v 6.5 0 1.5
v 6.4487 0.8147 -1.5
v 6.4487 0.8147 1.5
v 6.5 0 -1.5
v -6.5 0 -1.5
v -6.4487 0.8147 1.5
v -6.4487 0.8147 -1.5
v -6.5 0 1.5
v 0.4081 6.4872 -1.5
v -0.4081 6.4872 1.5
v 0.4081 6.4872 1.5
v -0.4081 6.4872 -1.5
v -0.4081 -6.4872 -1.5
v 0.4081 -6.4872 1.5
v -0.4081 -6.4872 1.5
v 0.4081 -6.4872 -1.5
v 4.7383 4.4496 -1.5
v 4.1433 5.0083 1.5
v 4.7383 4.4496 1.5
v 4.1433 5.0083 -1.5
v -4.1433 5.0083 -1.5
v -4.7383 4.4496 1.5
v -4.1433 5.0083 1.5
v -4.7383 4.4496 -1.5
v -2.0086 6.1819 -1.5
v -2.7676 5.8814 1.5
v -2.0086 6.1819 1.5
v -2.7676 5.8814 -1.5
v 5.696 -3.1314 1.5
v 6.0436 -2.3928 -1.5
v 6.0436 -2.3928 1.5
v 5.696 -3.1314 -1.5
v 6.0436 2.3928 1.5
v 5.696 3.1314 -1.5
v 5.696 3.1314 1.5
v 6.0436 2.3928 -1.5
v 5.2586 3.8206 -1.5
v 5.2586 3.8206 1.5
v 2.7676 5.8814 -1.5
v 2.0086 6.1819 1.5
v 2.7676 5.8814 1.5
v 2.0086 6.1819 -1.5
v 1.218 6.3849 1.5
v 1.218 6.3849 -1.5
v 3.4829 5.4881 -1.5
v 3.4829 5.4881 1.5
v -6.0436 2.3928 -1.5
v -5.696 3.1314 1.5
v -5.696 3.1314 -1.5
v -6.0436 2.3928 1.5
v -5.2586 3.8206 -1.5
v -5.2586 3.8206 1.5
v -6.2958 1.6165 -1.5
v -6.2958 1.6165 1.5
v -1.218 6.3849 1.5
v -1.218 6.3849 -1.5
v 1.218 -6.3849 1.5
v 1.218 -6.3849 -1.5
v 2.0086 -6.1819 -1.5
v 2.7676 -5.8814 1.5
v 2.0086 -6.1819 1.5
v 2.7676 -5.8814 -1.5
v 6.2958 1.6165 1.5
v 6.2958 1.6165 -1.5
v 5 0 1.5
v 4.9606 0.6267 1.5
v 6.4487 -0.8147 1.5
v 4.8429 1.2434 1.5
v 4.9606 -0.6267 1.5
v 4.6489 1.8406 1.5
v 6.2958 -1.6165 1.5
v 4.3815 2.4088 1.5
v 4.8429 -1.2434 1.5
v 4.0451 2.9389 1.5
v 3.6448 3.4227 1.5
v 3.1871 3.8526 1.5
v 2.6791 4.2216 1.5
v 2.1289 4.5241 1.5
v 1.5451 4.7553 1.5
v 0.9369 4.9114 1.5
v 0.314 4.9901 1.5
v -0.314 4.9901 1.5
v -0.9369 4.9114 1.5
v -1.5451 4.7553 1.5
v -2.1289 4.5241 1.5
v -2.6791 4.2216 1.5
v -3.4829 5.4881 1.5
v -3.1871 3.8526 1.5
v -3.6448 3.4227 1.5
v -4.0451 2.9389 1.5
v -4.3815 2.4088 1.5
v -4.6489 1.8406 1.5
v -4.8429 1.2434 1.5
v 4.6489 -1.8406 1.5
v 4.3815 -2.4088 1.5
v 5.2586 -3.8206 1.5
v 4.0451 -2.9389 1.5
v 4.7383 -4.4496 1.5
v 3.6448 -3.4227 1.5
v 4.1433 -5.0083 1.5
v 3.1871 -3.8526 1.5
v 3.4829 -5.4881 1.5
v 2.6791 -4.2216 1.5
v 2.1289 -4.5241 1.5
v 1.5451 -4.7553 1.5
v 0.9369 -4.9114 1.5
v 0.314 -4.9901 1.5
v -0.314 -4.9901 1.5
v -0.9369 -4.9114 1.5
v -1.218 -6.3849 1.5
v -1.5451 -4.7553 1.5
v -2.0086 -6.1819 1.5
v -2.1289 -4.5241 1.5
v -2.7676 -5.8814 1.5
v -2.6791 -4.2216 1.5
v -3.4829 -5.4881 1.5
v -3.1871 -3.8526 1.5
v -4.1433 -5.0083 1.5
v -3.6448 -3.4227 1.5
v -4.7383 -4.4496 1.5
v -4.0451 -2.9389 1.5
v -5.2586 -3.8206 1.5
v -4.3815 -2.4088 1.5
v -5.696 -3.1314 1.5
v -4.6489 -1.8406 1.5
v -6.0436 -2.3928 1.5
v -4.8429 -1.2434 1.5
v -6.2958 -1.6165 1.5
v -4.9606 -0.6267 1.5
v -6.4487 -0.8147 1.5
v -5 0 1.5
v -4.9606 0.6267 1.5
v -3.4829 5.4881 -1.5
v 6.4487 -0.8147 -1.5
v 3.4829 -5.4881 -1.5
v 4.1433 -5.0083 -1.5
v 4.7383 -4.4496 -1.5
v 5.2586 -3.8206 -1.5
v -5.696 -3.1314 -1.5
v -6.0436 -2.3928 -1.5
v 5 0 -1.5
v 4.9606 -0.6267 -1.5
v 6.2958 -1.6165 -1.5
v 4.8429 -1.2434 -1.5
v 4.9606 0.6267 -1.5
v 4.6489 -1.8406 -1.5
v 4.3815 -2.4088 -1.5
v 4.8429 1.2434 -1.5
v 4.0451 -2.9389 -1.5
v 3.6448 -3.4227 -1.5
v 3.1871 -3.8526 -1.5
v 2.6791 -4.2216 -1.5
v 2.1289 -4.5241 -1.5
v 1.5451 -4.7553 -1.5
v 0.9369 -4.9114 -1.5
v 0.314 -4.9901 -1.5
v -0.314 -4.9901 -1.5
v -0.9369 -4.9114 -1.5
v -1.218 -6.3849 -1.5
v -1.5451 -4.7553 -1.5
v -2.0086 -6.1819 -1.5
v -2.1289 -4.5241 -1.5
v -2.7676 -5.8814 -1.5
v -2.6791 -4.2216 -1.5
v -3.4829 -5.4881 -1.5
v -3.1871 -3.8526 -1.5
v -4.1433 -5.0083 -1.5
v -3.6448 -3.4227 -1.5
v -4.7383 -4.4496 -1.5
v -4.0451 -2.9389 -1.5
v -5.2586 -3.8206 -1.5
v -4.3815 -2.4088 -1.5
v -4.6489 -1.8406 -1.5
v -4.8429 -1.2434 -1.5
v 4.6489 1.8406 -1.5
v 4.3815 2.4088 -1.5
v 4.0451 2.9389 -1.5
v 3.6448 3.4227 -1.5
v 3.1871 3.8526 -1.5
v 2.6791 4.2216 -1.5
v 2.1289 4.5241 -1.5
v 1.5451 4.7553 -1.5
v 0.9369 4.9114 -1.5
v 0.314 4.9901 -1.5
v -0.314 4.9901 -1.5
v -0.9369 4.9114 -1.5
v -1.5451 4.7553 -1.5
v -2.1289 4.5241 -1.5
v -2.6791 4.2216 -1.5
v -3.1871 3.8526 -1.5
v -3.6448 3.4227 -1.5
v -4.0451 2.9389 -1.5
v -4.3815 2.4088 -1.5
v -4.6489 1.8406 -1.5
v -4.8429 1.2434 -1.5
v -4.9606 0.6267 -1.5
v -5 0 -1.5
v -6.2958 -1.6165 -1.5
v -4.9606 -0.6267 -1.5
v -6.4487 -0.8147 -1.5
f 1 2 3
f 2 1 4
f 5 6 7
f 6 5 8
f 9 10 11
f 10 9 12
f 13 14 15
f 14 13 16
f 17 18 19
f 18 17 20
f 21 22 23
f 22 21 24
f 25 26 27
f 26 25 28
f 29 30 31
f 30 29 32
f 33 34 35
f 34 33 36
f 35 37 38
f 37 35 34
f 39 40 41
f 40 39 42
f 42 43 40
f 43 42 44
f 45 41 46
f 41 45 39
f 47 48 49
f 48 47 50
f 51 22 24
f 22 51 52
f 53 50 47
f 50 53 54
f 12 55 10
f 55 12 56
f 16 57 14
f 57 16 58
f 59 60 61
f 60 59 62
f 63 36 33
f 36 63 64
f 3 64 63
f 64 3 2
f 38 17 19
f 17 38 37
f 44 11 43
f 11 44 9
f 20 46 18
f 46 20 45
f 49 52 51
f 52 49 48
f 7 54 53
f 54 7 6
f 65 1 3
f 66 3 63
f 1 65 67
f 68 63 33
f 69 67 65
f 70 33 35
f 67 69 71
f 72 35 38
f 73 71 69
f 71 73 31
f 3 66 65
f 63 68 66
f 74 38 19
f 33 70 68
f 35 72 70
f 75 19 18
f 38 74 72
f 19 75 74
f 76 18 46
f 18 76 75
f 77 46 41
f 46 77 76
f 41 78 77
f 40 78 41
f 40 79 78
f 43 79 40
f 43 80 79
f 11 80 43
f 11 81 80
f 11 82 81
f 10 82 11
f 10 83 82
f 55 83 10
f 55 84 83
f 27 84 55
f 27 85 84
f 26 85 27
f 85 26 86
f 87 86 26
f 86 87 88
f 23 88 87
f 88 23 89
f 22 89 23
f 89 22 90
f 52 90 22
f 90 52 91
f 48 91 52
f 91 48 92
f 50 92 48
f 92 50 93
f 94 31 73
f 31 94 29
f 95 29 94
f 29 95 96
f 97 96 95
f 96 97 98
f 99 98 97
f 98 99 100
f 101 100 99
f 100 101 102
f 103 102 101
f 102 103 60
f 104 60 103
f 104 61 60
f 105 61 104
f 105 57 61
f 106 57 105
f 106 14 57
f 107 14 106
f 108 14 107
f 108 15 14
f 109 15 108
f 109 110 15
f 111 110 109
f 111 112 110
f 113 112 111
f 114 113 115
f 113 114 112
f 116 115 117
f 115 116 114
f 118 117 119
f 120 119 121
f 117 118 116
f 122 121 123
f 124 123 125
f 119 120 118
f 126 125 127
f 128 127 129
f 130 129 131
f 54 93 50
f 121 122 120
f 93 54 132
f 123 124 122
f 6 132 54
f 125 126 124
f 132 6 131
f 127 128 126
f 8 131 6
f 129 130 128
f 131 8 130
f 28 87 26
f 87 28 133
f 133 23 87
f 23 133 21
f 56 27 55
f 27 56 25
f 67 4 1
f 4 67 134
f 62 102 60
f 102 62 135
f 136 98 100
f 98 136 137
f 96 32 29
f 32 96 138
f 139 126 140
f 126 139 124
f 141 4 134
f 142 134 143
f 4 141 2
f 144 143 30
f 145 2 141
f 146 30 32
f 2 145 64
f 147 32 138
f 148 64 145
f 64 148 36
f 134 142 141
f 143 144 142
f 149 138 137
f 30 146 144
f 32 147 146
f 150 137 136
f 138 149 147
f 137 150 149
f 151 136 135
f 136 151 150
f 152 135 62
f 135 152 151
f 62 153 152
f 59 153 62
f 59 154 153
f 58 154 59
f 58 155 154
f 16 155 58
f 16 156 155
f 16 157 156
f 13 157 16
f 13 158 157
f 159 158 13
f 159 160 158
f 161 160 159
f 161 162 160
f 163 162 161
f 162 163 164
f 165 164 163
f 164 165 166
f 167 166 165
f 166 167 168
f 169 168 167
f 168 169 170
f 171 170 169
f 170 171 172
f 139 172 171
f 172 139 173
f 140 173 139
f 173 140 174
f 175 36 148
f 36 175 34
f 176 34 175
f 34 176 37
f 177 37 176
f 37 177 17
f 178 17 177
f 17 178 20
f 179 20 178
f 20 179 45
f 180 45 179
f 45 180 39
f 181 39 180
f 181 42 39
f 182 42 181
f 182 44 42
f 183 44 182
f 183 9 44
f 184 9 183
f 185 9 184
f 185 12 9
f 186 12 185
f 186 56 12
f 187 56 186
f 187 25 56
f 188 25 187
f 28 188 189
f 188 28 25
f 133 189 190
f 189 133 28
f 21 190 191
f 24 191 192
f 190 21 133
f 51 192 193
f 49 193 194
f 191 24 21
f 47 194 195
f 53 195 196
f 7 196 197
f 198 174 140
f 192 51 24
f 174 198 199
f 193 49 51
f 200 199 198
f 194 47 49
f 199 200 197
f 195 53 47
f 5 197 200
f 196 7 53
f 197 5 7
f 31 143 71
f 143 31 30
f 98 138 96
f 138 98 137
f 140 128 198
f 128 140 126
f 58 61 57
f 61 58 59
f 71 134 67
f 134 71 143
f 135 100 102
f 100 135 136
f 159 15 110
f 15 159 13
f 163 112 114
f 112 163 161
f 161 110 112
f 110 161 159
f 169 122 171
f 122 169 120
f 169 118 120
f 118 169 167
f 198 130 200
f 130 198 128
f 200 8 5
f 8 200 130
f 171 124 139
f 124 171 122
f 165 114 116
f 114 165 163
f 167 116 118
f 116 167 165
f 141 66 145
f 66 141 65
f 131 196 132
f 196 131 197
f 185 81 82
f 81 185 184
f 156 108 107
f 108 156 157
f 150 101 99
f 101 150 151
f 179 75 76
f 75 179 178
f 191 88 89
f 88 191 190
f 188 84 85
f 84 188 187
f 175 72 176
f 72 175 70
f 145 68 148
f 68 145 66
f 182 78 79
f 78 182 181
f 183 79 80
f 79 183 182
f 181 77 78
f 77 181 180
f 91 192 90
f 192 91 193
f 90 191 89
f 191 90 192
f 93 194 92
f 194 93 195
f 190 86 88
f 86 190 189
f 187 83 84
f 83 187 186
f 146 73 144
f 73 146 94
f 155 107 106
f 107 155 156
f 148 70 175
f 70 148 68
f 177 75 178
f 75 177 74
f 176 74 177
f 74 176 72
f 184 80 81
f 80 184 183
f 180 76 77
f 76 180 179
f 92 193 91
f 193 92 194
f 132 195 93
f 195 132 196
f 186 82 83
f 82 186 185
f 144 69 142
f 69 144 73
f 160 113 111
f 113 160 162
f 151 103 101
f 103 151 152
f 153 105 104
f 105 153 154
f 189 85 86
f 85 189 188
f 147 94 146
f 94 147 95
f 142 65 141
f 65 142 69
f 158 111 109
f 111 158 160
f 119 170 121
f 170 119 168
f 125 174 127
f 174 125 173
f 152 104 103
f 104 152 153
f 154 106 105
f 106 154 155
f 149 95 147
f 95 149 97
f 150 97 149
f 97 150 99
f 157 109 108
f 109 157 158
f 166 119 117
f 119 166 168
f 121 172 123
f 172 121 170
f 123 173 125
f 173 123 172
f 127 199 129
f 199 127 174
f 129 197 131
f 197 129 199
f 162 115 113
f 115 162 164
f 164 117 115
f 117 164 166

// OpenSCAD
$fn = 50;


difference() {
	union() {
		translate(v = [0, 0, -1.5000000000]) {
			cylinder(h = 3, r = 6.5000000000);
		}
	}
	union() {
		translate(v = [0, 0, -100.0000000000]) {
			cylinder(h = 200, r = 5);
		}
	}
}
